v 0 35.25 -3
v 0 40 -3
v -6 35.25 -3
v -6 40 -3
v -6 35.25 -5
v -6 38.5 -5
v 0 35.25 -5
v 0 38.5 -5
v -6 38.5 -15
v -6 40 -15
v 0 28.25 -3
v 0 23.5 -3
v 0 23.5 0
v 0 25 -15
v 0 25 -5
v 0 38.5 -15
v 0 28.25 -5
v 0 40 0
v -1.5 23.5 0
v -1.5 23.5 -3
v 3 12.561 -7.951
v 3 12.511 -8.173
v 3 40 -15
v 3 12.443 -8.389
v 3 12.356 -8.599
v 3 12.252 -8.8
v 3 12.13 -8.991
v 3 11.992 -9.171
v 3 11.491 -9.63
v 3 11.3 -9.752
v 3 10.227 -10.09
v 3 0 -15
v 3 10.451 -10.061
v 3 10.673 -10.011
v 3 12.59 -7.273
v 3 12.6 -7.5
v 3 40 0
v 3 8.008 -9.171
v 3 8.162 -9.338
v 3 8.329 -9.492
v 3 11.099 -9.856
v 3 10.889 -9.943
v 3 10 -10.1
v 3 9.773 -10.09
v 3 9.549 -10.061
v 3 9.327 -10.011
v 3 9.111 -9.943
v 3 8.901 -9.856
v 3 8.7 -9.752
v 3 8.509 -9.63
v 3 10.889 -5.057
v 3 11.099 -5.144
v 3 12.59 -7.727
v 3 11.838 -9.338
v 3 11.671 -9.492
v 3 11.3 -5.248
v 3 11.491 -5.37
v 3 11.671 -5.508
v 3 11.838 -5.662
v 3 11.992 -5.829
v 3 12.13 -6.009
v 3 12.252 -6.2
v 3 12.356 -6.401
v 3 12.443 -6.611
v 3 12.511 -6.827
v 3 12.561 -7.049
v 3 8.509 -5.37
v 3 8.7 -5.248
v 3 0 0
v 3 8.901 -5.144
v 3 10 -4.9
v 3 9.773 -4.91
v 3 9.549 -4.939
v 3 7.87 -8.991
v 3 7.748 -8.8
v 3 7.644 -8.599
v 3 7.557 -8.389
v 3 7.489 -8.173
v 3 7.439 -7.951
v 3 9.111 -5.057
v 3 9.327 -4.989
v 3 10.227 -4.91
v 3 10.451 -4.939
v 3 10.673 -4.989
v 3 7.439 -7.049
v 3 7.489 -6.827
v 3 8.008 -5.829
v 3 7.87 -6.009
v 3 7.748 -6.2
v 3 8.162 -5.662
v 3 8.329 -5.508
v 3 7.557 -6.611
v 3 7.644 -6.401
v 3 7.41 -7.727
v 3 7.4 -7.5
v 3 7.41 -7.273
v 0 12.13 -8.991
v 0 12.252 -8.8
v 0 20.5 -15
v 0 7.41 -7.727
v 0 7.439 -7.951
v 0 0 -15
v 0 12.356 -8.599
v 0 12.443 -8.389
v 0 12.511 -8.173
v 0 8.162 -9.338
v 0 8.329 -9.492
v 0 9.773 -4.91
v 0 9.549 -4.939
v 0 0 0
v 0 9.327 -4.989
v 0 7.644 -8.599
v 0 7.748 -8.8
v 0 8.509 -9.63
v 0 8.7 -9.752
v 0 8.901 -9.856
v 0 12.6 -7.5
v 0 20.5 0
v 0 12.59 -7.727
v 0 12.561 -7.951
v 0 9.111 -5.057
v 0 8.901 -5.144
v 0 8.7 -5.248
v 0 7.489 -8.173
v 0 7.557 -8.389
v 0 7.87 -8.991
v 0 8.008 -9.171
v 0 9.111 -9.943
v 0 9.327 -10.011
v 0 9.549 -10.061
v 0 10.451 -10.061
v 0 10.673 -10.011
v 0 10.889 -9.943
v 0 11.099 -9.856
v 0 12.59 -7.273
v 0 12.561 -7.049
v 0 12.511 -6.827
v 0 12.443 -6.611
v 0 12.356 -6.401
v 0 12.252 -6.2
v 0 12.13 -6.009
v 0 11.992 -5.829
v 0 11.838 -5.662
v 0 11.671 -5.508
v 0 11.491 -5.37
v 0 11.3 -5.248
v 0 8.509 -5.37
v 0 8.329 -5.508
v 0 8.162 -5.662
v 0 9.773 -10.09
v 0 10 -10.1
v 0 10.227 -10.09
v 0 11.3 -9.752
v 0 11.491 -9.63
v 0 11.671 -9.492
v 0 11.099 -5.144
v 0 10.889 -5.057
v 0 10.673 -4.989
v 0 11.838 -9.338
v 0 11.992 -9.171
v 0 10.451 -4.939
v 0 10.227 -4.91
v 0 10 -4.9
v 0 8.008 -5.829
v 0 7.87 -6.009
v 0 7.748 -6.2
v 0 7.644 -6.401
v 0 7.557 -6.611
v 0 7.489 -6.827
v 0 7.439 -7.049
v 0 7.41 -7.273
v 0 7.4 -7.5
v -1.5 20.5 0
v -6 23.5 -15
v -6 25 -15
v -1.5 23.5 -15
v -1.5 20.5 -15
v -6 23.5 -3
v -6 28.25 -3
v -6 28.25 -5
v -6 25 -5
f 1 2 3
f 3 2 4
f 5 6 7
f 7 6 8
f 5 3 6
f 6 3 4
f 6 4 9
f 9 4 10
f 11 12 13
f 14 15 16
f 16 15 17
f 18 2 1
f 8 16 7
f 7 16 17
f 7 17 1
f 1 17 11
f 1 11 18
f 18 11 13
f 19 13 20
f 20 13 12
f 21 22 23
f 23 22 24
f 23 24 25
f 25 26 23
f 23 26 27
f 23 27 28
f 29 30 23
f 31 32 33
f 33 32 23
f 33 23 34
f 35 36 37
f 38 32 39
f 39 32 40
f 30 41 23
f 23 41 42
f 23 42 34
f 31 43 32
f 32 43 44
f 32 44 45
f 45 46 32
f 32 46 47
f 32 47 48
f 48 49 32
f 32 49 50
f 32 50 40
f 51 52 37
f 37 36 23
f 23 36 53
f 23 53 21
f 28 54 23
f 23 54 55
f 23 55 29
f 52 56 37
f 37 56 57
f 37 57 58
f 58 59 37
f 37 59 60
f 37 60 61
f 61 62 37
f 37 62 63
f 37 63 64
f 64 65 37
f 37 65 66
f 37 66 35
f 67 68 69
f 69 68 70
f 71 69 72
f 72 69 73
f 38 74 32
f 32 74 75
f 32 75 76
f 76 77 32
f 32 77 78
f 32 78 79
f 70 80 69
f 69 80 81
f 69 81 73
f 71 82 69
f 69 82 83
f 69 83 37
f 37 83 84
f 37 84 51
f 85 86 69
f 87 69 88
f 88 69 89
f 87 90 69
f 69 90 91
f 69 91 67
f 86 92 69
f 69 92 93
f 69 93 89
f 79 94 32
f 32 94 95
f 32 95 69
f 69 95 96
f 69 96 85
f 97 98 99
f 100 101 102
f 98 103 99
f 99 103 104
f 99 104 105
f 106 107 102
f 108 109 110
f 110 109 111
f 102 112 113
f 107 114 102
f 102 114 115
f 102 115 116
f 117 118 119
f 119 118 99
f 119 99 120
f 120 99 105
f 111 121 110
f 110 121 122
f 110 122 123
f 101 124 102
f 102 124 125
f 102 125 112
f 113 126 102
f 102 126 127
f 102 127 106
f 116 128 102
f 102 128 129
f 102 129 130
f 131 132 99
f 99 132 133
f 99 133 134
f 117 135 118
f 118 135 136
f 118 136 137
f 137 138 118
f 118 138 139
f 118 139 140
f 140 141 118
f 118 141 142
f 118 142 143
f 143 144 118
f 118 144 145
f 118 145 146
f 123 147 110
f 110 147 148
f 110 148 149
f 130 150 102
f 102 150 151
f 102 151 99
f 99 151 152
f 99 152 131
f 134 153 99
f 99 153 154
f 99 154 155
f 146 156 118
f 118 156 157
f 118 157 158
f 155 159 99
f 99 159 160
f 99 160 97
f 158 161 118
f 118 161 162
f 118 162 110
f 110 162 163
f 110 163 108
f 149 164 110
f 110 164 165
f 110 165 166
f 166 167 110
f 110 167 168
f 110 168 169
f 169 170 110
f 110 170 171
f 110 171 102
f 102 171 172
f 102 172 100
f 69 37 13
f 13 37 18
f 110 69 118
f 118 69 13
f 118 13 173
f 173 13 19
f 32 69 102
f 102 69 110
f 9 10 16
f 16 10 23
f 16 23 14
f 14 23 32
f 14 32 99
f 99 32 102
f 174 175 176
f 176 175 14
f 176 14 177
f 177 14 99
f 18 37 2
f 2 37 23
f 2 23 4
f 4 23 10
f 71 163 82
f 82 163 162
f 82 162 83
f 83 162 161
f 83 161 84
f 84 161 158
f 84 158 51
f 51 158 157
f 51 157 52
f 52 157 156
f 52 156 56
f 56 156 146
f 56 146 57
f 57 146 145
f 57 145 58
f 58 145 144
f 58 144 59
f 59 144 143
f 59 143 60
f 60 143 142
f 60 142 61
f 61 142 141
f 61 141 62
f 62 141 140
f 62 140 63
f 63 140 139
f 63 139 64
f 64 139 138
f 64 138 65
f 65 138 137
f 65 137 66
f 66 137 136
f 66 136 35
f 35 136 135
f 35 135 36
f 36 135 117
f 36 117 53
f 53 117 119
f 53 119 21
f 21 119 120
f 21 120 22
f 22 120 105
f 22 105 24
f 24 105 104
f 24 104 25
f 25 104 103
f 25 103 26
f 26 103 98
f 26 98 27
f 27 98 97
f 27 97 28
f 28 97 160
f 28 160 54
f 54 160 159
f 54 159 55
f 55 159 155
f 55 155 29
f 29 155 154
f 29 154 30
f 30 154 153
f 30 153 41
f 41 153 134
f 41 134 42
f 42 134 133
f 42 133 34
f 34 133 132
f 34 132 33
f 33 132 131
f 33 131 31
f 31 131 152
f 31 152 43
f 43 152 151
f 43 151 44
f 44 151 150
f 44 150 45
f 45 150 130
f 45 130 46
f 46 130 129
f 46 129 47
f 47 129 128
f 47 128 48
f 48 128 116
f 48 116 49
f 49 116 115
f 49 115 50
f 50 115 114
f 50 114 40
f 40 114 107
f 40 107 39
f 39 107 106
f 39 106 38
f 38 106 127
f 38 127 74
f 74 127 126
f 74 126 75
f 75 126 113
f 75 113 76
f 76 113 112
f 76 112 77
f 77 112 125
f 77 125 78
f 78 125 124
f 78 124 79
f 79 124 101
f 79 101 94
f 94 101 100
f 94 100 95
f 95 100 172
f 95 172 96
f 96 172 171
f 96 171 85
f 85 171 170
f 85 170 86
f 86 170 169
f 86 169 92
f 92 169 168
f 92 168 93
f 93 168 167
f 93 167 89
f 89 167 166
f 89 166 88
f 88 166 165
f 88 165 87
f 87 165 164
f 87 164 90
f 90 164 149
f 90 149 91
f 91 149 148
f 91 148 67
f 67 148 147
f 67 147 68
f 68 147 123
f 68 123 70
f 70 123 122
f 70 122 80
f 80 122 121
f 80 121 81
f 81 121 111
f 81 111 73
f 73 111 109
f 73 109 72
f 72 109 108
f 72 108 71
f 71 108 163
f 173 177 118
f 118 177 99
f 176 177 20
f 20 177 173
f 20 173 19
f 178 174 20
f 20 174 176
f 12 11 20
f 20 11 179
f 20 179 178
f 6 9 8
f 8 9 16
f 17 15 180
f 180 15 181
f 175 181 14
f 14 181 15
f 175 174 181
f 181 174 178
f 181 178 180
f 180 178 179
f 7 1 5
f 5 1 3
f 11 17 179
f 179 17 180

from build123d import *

# Parameters (mm, degrees)
SKETCH1_W           = 15
SKETCH1_H           = 40
SKETCH1_R           = 2.6
BOSS_EXTRUDE1_DEPTH = 3
SKETCH2_W           = 15
SKETCH2_H           = 3
BOSS_EXTRUDE2_DEPTH = 1.5
BOSS_EXTRUDE3_DEPTH = 6
SKETCH4_W           = 2
SKETCH4_H           = 7
CUT_EXTRUDE1_DEPTH  = 6


with BuildPart() as part:
    # Sketch1 → Boss-Extrude1 (new body)
    with BuildSketch(Plane(origin=(0, 0, 0), x_dir=(0, 0, -1), z_dir=(1, 0, 0))):
        with Locations((7.5, 20)):
            Rectangle(SKETCH1_W, SKETCH1_H)
        with Locations((7.5, 10)):
            Circle(SKETCH1_R, mode=Mode.SUBTRACT)
    extrude(amount=BOSS_EXTRUDE1_DEPTH)

    # Sketch2 → Boss-Extrude2 (add)
    with BuildSketch(Plane.ZY):
        with Locations((-7.5, 22)):
            Rectangle(SKETCH2_W, SKETCH2_H)
    extrude(amount=BOSS_EXTRUDE2_DEPTH)

    # Sketch3 → Boss-Extrude3 (add)
    with BuildSketch(Plane.ZY):
        Polygon((-15, 25), (-5, 25), (-5, 38.5), (-15, 38.5), (-15, 40), (-3, 40), (-3, 23.5), (-15, 23.5), align=None)
    extrude(amount=BOSS_EXTRUDE3_DEPTH)

    # Sketch4 → Cut-Extrude1 (cut)
    with BuildSketch(Plane.ZY.offset(6)):
        with Locations((-4, 31.75)):
            Rectangle(SKETCH4_W, SKETCH4_H)
    extrude(amount=-CUT_EXTRUDE1_DEPTH, mode=Mode.SUBTRACT)


solid = part.part
